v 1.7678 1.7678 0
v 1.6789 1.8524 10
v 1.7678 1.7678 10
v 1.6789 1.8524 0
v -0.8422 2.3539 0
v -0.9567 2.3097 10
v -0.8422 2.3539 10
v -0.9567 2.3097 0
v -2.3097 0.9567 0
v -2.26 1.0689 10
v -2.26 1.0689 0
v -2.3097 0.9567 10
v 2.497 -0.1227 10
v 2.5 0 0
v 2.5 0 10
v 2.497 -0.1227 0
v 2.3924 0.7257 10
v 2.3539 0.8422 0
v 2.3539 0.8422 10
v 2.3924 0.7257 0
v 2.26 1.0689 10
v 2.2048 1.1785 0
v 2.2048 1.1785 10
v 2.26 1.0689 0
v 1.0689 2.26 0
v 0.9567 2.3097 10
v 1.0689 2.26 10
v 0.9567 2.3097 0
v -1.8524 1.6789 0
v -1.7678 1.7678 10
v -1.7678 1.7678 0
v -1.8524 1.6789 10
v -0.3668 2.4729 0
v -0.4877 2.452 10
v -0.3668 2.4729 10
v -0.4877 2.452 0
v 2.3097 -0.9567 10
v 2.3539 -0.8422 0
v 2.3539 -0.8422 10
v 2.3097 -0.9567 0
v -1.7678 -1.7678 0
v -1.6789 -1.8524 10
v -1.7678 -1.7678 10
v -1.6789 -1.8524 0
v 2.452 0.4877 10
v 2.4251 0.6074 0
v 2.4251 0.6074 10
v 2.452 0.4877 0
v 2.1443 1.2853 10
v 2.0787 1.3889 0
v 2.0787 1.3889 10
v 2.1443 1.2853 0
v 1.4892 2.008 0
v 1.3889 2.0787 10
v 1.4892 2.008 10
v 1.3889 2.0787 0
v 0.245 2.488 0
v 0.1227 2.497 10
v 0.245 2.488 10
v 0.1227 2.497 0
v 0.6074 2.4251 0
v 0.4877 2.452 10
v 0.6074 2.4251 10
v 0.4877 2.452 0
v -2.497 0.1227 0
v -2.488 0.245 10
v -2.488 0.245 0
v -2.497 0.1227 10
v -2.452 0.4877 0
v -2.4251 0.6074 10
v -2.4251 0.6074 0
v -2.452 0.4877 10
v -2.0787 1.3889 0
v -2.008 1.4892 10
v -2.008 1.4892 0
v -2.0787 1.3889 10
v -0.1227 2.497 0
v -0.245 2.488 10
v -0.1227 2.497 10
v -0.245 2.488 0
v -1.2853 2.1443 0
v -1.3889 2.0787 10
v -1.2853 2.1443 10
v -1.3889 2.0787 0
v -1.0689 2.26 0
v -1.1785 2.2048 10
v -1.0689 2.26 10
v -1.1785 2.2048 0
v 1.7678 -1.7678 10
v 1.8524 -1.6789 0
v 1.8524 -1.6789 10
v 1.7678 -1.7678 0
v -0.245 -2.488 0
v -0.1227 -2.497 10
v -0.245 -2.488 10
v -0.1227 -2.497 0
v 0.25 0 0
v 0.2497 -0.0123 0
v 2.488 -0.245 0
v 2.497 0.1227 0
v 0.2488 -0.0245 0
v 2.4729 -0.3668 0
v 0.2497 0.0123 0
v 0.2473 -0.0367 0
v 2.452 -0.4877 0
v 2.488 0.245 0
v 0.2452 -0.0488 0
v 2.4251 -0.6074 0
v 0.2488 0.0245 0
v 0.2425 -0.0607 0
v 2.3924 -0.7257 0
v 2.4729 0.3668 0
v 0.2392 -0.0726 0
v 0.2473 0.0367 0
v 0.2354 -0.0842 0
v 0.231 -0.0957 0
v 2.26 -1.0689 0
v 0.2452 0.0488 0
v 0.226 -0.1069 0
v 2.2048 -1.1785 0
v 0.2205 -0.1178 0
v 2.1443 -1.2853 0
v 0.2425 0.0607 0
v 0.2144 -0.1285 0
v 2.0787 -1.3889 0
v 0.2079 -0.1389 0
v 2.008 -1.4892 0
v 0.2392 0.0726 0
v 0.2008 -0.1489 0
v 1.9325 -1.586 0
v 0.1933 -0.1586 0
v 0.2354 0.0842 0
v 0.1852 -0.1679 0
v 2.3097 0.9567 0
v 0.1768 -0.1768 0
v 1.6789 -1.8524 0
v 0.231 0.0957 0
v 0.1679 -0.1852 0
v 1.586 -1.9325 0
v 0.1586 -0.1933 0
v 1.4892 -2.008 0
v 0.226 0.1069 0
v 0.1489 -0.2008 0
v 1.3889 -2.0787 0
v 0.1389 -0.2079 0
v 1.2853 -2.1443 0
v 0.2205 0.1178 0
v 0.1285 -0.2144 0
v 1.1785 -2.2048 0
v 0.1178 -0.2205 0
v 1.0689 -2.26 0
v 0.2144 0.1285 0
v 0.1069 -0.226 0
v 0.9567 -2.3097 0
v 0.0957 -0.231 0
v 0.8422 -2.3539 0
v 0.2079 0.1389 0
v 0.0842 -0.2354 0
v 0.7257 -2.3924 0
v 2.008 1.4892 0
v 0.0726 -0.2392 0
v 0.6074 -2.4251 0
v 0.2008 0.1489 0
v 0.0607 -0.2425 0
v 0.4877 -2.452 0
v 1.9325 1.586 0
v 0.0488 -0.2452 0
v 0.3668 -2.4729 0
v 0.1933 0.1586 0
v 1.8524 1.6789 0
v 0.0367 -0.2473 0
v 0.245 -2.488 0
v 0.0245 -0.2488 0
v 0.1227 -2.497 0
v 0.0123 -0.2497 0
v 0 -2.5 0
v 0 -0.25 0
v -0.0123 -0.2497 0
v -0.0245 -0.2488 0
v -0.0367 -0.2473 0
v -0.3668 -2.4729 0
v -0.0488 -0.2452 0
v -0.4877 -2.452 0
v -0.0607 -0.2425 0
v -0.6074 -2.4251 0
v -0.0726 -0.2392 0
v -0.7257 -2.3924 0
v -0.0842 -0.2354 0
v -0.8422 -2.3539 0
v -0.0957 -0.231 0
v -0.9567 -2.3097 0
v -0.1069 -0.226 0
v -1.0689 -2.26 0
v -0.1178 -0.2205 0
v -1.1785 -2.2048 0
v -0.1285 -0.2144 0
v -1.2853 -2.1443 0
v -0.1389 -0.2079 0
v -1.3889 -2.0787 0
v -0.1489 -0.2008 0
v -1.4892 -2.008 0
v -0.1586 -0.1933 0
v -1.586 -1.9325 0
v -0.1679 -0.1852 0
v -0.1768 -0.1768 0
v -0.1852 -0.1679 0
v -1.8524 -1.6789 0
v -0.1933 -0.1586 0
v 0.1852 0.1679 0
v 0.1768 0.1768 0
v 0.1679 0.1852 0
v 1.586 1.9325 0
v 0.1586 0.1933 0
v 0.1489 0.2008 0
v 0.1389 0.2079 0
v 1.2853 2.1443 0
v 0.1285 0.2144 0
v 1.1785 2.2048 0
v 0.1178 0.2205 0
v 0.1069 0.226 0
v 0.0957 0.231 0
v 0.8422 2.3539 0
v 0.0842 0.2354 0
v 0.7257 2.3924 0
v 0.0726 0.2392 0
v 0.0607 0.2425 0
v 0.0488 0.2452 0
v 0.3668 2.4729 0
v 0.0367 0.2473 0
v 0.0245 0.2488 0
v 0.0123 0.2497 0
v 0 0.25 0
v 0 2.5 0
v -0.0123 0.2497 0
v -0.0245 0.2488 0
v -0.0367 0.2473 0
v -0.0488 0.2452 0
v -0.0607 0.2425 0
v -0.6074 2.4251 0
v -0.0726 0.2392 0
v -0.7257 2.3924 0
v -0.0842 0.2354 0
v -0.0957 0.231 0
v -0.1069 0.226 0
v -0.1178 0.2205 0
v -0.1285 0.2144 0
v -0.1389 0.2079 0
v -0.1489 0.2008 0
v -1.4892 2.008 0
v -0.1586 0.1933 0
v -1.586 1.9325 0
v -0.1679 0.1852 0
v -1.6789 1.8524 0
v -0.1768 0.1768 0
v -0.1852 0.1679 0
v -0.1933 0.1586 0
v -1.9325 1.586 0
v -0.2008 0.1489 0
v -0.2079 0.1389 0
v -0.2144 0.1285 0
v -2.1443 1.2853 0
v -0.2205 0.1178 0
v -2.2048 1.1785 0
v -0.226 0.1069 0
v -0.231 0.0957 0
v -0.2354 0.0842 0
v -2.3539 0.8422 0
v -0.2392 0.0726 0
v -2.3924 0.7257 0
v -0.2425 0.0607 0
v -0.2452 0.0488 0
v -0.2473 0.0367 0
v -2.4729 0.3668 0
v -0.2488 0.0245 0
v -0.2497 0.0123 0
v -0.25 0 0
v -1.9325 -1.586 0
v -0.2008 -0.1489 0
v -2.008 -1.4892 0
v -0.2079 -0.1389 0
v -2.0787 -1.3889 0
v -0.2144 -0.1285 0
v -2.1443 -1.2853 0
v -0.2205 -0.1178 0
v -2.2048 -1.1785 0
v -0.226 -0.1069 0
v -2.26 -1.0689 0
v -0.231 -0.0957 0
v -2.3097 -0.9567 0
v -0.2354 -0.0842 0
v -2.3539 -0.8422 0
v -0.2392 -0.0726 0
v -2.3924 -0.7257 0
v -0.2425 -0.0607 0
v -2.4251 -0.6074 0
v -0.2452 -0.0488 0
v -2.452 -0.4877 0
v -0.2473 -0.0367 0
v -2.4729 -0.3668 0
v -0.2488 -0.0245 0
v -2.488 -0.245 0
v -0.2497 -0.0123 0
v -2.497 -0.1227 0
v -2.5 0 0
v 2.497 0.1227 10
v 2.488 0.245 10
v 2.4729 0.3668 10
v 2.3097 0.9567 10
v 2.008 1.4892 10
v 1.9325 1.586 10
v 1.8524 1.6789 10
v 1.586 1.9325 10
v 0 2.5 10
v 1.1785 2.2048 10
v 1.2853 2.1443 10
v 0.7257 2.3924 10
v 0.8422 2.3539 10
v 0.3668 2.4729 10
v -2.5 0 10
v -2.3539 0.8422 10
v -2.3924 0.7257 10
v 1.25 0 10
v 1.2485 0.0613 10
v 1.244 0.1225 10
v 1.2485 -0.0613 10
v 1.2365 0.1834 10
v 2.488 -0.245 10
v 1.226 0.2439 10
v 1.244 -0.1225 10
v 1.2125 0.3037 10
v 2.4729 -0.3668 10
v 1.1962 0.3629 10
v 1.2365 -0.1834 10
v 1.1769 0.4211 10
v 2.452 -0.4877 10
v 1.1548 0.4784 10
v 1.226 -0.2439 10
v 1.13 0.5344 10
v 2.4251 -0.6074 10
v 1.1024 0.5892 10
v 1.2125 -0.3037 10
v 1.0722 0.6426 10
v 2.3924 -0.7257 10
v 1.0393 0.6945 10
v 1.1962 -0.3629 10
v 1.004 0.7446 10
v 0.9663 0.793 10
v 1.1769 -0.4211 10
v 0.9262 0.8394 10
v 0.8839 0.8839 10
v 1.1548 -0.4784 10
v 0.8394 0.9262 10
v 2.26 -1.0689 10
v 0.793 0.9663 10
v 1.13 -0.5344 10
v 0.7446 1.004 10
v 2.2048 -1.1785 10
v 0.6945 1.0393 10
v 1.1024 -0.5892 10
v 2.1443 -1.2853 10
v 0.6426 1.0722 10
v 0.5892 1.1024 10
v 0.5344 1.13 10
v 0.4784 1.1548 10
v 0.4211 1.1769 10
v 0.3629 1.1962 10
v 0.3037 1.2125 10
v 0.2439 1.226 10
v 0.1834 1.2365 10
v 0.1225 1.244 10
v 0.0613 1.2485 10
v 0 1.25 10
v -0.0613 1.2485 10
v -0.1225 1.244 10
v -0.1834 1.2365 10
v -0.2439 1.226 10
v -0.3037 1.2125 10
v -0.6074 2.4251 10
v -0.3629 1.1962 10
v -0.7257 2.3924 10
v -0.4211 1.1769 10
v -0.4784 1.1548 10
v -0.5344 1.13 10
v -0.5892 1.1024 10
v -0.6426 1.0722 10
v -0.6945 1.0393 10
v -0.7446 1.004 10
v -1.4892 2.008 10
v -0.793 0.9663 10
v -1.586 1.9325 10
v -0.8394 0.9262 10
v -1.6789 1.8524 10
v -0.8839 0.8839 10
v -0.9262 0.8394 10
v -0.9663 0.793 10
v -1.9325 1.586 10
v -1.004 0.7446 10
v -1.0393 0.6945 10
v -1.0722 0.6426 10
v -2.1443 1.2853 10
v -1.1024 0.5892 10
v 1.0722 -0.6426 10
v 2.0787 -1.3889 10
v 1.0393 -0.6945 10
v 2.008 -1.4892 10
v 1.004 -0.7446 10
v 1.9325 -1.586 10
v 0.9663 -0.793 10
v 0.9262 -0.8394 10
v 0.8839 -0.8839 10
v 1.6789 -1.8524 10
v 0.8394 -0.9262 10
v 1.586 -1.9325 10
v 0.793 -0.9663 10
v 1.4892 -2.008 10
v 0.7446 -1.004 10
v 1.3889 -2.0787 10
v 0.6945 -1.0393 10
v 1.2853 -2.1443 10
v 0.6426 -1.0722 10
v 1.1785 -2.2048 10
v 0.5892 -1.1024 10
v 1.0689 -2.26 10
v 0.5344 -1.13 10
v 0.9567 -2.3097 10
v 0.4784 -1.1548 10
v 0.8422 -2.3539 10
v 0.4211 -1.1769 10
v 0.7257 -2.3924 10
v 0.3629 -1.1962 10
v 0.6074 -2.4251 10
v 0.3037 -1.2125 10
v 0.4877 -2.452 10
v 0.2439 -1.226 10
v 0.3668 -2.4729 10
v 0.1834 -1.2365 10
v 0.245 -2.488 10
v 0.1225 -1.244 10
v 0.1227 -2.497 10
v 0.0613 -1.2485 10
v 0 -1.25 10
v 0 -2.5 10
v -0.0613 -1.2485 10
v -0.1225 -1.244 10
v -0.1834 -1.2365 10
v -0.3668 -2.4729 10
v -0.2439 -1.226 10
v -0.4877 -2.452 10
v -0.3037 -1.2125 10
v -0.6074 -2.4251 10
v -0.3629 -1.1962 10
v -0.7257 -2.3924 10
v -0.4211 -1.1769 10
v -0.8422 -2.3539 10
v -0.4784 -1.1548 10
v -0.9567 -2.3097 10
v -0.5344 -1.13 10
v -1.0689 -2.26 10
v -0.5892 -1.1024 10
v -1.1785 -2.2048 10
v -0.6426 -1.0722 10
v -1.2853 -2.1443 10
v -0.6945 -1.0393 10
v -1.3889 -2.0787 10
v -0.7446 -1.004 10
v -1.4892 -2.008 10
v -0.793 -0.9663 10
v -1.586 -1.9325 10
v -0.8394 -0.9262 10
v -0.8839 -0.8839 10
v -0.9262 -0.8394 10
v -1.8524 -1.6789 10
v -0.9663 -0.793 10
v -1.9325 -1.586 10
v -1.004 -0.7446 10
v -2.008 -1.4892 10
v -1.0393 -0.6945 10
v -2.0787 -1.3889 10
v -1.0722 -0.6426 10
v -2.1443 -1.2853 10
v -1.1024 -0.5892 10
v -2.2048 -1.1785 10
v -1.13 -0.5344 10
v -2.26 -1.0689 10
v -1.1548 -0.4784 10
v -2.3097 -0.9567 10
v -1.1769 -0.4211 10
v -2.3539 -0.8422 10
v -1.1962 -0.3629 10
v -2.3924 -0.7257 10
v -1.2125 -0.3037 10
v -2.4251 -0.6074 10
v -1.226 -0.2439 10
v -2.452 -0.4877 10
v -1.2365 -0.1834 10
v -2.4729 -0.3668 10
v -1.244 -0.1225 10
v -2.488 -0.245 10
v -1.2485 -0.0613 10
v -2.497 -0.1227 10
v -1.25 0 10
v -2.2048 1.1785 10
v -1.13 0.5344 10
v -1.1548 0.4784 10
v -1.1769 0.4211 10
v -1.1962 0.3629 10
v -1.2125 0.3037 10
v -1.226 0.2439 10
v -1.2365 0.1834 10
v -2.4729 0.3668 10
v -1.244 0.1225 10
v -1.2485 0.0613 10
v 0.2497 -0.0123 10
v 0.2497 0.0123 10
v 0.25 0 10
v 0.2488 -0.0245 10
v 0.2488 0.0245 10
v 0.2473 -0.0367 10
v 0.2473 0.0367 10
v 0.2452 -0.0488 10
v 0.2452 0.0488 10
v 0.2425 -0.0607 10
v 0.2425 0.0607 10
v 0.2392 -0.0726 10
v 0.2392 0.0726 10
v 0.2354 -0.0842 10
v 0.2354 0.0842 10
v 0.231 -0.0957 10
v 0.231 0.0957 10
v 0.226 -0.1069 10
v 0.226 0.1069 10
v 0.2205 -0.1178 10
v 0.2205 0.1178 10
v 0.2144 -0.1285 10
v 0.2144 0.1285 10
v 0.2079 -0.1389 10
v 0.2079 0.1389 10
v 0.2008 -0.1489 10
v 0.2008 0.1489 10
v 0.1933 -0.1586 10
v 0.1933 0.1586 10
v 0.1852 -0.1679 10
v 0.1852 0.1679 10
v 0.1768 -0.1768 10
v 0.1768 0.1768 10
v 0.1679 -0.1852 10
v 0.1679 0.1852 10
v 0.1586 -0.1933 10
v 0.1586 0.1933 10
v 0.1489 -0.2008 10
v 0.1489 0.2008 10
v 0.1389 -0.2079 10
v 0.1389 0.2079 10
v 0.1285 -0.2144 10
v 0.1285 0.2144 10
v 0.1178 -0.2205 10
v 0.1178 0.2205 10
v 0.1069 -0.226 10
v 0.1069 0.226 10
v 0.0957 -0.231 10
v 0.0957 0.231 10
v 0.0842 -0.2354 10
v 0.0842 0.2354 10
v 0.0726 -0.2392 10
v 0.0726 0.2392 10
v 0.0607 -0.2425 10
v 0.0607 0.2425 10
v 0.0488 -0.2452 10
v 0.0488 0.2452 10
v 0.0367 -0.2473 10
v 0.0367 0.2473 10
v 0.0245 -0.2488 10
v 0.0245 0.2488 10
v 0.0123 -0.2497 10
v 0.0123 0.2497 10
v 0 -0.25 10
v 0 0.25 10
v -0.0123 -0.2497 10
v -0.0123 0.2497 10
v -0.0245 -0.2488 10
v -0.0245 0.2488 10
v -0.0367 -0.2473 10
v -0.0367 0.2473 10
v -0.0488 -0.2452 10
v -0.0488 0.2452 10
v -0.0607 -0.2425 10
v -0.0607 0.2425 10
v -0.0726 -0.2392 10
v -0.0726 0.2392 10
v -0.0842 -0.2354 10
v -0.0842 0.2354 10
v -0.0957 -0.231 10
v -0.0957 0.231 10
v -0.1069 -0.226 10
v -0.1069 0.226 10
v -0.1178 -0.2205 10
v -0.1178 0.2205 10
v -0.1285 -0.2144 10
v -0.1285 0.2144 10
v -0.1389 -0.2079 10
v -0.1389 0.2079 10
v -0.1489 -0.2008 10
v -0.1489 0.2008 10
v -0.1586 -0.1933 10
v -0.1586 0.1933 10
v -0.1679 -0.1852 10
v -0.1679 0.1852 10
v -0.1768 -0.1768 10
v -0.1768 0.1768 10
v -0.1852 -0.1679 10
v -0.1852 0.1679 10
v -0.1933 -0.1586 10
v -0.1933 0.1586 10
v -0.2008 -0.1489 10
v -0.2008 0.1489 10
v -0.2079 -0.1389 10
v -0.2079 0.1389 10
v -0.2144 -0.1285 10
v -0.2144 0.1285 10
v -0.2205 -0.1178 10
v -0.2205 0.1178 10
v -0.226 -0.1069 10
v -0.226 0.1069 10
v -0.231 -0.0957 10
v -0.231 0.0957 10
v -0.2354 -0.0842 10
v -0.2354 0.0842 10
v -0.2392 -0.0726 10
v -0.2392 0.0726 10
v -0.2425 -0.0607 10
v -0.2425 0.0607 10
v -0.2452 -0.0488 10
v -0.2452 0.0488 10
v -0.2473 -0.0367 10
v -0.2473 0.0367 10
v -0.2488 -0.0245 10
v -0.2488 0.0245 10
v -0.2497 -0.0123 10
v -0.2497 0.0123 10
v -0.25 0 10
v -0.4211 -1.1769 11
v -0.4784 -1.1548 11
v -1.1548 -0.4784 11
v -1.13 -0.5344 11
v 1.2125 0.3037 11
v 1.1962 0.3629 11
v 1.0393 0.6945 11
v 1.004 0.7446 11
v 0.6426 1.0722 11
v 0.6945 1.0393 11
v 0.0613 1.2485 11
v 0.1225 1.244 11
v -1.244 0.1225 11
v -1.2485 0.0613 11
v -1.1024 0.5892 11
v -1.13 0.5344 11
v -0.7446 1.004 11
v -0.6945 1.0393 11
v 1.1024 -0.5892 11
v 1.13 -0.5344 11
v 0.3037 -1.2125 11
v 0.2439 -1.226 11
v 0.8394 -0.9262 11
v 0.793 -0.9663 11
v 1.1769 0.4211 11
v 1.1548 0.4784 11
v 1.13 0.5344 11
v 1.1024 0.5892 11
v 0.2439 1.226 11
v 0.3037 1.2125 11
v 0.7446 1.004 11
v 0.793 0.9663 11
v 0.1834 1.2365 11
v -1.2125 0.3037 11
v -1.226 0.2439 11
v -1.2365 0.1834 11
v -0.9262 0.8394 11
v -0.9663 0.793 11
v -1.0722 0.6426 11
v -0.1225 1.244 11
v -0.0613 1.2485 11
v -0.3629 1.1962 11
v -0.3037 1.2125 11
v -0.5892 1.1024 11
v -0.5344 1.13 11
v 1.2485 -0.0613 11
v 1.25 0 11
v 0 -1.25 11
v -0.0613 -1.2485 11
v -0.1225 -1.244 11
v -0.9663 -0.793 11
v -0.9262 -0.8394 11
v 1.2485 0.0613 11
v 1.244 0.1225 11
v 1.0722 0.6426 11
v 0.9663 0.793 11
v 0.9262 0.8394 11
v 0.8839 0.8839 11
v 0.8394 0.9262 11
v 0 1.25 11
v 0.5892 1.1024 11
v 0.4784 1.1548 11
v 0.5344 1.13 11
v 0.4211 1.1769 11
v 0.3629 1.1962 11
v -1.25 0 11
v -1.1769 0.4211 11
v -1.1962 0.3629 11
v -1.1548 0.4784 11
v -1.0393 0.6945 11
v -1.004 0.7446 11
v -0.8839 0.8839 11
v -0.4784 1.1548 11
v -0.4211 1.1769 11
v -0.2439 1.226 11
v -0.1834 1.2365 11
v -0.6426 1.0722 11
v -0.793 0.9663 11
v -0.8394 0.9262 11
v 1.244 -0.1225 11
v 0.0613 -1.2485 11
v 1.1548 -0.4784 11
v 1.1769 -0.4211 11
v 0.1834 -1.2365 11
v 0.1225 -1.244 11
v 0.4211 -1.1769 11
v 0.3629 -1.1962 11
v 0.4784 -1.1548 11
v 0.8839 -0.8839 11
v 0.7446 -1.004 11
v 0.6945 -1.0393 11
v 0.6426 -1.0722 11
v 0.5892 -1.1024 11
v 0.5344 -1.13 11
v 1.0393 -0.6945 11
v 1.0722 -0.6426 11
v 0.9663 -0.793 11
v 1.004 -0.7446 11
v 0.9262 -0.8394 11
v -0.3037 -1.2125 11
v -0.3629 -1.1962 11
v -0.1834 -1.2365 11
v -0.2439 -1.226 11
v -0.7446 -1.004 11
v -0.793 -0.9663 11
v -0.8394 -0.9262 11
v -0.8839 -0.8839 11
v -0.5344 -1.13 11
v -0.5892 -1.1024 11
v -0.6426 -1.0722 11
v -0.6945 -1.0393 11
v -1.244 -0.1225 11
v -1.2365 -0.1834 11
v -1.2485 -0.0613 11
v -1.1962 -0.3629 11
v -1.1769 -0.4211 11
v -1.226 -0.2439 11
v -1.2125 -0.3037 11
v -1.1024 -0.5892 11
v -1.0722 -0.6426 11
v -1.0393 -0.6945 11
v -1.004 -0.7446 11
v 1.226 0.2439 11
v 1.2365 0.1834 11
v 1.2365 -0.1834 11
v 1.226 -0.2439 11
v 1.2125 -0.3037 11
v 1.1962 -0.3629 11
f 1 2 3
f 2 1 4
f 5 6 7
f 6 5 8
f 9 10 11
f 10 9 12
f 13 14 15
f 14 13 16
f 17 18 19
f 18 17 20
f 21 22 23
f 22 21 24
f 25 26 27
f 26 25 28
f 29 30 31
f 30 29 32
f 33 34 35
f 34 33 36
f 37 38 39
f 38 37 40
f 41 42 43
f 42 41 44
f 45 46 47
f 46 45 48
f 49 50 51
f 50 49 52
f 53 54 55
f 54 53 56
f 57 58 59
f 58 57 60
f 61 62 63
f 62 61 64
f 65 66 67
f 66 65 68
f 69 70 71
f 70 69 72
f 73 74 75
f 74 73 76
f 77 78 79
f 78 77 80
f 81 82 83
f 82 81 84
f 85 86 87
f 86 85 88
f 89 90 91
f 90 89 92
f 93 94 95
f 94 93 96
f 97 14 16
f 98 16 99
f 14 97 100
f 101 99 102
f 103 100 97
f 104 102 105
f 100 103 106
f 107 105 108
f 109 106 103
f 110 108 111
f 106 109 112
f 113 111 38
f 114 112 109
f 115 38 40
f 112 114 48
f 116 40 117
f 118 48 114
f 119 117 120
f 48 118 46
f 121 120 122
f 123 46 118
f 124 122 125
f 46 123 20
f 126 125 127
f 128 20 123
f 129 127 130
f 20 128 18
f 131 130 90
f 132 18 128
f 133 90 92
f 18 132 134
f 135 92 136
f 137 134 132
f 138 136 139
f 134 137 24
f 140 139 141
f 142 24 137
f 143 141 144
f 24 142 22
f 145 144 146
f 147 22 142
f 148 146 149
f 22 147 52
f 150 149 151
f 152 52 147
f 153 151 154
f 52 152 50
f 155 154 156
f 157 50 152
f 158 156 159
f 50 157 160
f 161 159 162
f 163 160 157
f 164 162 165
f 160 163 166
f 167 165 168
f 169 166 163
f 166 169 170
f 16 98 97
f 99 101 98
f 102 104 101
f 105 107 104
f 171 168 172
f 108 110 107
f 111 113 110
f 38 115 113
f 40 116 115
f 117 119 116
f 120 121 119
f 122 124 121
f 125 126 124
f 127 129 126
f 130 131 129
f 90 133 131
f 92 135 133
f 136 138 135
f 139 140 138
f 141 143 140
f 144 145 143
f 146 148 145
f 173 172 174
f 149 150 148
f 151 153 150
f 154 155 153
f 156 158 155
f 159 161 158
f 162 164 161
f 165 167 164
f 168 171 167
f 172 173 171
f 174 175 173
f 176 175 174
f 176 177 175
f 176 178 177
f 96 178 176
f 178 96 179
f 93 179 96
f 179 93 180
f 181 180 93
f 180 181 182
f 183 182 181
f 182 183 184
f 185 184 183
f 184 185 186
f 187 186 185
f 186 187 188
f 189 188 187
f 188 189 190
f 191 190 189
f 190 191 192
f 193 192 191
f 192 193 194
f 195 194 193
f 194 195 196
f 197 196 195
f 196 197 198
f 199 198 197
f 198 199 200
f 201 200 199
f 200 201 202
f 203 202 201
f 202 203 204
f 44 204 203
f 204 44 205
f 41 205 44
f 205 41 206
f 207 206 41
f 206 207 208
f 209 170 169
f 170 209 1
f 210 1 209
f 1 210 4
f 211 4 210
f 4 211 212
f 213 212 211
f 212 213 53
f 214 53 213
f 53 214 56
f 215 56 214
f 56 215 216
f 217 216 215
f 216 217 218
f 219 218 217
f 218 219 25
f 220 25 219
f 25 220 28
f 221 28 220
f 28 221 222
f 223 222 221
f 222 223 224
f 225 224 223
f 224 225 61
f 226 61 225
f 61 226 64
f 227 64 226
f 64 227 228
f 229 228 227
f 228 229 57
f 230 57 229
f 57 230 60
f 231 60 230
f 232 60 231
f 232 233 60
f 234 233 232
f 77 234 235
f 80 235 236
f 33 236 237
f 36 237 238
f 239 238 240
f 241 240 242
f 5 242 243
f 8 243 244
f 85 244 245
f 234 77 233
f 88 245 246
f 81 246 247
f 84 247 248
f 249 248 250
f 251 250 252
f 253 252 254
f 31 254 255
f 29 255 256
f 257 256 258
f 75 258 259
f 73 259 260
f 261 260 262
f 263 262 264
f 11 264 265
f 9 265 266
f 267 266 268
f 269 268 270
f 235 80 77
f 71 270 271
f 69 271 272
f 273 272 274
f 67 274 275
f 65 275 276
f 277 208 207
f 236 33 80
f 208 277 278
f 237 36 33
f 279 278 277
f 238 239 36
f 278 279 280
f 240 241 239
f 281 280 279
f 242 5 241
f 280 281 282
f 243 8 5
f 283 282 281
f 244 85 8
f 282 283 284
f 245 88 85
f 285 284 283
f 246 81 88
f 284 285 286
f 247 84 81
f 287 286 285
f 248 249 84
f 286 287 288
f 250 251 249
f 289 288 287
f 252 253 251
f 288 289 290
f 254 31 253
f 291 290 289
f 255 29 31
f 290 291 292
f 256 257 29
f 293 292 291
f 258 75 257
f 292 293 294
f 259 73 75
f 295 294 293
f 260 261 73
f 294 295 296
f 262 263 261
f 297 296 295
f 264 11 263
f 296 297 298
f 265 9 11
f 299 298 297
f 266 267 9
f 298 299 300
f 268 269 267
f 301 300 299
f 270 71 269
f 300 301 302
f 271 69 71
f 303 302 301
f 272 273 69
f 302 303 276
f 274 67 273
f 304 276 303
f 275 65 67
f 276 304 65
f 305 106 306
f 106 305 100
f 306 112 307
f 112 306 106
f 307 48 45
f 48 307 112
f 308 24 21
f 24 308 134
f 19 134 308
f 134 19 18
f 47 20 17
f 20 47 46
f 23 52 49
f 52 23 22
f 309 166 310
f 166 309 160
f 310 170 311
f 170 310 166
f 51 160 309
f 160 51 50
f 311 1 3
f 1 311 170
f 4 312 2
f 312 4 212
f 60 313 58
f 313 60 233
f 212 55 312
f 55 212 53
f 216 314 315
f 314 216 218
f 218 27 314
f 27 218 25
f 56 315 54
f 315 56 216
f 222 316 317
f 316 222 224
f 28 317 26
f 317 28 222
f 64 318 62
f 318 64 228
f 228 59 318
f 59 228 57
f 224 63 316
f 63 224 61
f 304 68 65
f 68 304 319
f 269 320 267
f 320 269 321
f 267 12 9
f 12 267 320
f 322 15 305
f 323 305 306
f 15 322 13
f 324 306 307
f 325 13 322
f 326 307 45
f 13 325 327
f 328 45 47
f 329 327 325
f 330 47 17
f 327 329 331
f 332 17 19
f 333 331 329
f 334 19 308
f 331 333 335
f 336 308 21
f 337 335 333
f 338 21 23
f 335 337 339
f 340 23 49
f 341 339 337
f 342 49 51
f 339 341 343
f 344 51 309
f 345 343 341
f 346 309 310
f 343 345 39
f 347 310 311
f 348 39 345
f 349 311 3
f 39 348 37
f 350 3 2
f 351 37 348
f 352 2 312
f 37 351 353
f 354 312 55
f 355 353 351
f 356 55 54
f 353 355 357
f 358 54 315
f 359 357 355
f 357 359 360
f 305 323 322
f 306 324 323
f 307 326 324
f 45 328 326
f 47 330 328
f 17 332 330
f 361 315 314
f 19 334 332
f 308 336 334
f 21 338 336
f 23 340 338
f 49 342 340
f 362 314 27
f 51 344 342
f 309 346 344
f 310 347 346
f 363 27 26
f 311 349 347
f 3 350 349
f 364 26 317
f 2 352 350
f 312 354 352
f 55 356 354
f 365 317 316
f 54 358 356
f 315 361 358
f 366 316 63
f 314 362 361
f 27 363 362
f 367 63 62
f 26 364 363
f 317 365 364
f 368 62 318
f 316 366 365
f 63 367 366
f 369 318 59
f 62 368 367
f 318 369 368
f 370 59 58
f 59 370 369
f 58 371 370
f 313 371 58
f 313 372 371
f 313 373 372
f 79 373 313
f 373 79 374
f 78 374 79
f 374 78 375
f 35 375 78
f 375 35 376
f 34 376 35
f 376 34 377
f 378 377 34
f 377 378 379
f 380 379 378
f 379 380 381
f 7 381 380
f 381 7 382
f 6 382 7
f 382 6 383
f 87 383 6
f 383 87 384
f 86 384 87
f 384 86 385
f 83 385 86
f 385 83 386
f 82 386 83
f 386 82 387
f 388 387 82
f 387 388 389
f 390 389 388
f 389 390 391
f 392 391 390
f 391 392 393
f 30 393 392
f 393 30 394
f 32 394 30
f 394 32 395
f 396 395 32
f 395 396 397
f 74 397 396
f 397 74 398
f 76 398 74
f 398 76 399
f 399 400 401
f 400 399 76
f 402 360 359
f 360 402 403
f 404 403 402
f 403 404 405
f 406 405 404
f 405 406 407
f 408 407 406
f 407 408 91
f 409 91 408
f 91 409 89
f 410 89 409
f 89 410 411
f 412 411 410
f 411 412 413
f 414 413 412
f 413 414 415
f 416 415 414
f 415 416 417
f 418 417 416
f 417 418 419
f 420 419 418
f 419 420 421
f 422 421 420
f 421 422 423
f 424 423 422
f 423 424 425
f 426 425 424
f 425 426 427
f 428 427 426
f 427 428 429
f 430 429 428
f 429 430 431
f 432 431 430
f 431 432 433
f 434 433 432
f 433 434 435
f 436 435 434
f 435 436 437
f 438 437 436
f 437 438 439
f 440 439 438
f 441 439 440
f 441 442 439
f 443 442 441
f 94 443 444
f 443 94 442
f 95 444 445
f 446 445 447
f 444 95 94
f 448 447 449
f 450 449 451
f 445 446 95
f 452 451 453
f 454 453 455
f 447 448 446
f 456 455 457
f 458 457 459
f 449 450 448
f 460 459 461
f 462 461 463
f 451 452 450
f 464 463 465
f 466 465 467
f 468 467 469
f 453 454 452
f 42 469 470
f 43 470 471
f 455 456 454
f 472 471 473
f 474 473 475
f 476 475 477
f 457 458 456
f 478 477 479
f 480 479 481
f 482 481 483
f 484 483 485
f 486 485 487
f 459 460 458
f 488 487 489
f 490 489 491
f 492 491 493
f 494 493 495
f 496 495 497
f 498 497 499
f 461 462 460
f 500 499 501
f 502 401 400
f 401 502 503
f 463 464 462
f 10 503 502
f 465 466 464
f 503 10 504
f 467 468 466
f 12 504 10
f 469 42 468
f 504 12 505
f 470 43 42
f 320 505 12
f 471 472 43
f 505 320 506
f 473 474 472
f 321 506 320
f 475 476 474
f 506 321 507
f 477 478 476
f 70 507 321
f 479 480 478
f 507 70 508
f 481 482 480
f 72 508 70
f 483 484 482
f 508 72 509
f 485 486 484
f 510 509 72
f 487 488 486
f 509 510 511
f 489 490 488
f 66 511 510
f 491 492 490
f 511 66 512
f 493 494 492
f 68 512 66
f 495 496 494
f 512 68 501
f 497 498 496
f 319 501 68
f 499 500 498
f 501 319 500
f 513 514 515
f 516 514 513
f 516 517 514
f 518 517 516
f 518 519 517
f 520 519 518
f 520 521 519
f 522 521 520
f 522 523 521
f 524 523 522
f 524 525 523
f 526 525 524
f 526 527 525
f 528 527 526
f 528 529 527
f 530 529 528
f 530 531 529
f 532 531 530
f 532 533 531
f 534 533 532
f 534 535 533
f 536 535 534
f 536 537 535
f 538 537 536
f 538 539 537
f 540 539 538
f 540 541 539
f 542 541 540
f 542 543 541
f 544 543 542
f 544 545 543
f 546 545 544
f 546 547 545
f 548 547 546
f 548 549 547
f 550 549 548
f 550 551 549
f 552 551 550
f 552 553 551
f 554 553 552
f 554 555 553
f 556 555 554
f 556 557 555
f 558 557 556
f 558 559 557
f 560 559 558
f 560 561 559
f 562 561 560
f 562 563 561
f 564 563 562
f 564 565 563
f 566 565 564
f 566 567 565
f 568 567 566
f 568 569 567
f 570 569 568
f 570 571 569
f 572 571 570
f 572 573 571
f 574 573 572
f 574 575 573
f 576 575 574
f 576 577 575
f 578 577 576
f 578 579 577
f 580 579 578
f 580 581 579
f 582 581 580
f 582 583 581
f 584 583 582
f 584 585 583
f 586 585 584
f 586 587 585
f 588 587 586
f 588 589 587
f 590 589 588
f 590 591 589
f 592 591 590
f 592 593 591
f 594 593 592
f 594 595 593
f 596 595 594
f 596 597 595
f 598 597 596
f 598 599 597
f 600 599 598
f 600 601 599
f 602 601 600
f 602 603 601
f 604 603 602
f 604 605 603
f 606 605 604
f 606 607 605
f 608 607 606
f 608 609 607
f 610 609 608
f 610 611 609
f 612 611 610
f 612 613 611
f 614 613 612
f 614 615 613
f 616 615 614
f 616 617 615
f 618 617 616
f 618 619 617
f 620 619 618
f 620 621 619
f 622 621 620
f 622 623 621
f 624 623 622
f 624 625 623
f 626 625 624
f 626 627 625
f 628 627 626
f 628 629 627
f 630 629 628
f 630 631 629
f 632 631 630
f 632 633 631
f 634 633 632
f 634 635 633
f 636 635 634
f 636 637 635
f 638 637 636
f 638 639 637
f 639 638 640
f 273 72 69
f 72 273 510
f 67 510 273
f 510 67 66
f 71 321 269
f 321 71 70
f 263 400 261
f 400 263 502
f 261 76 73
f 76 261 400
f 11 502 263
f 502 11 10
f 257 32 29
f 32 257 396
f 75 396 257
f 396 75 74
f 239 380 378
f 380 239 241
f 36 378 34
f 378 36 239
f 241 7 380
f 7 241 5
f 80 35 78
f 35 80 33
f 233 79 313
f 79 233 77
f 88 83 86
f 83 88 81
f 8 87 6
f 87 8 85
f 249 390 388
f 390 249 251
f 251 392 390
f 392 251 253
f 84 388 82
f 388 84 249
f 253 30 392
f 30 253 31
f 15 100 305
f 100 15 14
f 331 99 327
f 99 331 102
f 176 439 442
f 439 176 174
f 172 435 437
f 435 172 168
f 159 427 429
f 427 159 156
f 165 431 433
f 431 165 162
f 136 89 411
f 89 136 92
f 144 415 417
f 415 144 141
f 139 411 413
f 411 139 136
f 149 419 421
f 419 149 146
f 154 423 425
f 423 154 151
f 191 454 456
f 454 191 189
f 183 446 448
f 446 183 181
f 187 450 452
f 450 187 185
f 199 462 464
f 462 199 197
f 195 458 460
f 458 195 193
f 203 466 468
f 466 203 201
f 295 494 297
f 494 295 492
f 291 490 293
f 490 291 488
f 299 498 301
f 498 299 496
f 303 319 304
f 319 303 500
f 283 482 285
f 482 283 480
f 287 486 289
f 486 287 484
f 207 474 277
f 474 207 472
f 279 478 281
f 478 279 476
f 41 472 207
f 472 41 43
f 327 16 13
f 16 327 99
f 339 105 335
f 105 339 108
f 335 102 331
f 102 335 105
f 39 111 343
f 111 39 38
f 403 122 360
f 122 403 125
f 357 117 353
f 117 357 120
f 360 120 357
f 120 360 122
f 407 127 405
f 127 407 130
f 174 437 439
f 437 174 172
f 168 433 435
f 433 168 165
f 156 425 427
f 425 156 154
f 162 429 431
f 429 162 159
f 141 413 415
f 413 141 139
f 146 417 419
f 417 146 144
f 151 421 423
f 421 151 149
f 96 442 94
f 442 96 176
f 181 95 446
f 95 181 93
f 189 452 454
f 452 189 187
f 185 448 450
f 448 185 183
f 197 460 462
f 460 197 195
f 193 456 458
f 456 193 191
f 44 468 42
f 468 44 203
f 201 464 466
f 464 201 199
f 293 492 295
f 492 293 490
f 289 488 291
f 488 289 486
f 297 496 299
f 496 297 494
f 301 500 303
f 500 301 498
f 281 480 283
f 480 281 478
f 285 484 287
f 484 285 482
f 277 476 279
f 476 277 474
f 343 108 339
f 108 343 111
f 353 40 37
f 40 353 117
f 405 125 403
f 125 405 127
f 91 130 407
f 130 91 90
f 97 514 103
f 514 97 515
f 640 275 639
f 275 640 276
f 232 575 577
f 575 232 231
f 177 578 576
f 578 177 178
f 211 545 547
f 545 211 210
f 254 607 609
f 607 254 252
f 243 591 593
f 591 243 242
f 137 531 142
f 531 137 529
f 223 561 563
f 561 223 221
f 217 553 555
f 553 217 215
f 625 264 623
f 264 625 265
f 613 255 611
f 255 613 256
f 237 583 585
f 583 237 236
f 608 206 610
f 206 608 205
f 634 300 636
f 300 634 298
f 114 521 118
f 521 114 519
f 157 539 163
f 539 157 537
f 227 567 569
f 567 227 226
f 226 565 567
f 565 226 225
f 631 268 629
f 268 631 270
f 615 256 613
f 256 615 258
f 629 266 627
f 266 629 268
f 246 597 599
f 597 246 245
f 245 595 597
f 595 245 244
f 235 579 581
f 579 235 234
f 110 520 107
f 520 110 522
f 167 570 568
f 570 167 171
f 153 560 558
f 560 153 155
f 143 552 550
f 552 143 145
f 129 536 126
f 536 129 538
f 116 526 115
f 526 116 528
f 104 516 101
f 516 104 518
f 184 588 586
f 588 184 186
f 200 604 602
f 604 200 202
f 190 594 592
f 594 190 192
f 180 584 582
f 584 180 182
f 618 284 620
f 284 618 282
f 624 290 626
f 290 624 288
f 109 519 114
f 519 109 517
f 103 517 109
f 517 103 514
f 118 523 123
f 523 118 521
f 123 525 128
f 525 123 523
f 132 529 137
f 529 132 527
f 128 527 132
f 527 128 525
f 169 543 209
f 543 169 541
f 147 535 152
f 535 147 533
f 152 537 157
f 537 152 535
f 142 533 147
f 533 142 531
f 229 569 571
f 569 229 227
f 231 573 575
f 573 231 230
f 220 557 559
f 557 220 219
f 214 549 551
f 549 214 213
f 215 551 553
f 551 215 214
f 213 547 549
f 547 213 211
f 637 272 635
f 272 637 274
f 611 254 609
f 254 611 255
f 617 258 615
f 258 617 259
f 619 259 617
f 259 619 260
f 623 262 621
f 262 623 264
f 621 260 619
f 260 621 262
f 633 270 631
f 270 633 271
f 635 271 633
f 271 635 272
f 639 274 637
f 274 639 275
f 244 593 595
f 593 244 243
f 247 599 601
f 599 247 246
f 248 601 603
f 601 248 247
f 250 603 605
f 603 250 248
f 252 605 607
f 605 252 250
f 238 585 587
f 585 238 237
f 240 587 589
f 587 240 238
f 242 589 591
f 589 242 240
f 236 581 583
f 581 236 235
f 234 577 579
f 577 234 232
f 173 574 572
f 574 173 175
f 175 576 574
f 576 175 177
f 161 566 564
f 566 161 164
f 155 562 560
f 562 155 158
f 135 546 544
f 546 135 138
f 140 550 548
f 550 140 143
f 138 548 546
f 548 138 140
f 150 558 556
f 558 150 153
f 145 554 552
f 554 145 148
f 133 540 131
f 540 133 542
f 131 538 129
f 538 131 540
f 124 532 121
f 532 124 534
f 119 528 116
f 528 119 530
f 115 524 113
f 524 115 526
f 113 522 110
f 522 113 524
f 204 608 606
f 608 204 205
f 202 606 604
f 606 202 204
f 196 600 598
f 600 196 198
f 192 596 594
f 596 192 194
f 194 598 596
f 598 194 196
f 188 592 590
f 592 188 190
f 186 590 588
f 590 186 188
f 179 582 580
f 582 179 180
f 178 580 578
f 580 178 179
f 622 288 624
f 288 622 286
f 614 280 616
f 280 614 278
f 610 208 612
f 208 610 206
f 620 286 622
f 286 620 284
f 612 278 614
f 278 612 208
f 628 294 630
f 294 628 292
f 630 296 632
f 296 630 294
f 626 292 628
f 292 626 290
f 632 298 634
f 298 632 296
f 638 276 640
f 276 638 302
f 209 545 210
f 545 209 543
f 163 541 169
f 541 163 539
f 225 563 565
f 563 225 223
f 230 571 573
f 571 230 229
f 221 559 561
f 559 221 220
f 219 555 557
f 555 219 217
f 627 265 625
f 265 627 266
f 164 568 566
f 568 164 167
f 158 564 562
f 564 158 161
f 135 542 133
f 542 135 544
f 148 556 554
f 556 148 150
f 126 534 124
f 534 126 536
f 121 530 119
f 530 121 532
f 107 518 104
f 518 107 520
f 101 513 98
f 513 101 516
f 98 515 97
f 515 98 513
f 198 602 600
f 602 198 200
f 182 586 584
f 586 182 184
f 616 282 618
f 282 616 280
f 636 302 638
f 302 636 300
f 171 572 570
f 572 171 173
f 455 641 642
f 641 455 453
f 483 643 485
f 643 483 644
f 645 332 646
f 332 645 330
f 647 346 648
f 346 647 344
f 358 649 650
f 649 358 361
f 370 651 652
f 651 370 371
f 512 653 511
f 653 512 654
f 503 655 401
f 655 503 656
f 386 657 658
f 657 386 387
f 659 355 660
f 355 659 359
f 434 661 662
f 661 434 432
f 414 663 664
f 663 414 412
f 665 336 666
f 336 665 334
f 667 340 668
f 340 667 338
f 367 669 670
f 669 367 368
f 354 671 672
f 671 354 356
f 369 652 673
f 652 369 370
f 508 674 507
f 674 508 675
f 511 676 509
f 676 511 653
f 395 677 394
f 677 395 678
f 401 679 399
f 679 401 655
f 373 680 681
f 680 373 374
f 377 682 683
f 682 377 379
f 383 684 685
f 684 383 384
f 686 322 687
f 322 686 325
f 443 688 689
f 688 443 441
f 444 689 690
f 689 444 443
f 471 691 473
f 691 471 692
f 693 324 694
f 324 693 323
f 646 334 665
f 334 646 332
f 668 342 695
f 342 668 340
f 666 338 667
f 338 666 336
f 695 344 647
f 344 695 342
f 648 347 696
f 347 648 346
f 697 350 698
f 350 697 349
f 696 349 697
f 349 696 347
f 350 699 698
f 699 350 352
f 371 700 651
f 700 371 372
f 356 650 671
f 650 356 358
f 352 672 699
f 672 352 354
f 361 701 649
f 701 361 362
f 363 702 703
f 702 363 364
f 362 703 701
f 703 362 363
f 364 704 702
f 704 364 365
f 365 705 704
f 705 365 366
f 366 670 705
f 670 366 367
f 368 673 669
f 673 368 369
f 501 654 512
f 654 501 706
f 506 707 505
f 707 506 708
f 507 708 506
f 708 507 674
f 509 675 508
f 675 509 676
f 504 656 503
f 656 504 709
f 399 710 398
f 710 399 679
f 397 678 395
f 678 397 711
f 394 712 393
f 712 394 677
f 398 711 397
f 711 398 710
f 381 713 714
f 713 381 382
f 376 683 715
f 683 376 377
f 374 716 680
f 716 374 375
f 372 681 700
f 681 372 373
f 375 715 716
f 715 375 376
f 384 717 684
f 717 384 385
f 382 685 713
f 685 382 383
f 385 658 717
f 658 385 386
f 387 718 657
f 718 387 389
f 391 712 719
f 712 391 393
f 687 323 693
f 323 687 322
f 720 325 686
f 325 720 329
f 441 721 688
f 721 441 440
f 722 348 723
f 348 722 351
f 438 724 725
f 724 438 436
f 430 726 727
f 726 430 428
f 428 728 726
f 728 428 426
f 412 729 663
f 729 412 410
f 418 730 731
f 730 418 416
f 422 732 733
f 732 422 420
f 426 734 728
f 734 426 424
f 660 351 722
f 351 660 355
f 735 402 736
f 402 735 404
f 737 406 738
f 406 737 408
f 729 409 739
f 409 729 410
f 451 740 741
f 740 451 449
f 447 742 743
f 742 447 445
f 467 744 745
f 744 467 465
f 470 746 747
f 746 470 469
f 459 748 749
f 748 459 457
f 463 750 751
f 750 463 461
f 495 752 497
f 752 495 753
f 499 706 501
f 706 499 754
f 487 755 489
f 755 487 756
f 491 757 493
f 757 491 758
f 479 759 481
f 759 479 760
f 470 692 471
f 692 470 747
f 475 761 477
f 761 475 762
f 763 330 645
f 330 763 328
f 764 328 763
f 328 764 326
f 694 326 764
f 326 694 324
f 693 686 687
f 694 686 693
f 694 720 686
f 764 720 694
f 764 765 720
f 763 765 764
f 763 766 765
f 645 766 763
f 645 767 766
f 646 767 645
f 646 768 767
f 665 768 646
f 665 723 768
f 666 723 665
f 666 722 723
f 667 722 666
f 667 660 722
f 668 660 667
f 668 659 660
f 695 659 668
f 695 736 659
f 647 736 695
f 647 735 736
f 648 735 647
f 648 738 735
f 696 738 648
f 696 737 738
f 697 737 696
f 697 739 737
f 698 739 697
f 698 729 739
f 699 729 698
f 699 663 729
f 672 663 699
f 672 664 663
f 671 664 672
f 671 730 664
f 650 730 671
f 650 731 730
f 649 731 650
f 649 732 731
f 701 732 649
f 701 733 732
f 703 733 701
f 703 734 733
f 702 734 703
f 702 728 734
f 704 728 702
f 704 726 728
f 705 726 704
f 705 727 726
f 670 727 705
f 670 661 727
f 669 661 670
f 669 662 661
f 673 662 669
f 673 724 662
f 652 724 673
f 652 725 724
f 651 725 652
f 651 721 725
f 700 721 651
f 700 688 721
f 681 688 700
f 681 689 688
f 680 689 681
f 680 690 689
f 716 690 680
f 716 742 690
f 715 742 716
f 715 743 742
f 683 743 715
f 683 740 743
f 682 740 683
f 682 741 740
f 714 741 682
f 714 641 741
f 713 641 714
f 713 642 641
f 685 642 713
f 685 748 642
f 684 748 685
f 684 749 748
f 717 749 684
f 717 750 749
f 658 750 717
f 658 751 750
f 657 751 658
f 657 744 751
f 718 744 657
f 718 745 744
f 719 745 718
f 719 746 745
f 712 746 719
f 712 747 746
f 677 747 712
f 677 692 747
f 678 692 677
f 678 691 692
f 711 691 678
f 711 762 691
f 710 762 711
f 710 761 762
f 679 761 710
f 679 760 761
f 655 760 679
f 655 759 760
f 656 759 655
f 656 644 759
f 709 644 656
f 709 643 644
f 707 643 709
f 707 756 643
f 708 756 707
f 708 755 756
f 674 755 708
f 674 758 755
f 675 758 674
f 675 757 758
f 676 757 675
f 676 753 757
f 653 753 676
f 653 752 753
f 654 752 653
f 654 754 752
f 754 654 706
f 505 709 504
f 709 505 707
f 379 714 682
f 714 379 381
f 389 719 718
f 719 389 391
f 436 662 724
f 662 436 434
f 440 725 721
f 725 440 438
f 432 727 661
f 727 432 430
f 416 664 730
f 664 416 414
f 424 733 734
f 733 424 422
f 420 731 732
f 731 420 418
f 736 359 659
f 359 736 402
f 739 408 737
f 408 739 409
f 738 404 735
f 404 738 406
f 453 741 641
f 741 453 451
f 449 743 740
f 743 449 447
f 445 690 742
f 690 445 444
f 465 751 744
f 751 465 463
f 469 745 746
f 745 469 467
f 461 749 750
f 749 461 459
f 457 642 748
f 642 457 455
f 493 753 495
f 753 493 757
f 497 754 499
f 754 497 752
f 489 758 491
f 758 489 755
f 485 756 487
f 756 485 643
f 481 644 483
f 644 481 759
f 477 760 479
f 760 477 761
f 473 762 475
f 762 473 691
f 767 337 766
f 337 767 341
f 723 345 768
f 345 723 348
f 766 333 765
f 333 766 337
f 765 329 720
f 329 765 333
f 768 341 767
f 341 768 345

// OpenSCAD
// Generated by SolidPython 1.1.3 on 2023-04-08 02:27:49
$fn =128;


union() {
	difference() {
		cylinder(h = 10, r = 2.5000000000);
		cylinder(h = 10, r = 0.2500000000);
	}
	translate(v = [0, 0, 10]) {
		cylinder(h = 1.0000000000, r = 1.2500000000);
	}
}
